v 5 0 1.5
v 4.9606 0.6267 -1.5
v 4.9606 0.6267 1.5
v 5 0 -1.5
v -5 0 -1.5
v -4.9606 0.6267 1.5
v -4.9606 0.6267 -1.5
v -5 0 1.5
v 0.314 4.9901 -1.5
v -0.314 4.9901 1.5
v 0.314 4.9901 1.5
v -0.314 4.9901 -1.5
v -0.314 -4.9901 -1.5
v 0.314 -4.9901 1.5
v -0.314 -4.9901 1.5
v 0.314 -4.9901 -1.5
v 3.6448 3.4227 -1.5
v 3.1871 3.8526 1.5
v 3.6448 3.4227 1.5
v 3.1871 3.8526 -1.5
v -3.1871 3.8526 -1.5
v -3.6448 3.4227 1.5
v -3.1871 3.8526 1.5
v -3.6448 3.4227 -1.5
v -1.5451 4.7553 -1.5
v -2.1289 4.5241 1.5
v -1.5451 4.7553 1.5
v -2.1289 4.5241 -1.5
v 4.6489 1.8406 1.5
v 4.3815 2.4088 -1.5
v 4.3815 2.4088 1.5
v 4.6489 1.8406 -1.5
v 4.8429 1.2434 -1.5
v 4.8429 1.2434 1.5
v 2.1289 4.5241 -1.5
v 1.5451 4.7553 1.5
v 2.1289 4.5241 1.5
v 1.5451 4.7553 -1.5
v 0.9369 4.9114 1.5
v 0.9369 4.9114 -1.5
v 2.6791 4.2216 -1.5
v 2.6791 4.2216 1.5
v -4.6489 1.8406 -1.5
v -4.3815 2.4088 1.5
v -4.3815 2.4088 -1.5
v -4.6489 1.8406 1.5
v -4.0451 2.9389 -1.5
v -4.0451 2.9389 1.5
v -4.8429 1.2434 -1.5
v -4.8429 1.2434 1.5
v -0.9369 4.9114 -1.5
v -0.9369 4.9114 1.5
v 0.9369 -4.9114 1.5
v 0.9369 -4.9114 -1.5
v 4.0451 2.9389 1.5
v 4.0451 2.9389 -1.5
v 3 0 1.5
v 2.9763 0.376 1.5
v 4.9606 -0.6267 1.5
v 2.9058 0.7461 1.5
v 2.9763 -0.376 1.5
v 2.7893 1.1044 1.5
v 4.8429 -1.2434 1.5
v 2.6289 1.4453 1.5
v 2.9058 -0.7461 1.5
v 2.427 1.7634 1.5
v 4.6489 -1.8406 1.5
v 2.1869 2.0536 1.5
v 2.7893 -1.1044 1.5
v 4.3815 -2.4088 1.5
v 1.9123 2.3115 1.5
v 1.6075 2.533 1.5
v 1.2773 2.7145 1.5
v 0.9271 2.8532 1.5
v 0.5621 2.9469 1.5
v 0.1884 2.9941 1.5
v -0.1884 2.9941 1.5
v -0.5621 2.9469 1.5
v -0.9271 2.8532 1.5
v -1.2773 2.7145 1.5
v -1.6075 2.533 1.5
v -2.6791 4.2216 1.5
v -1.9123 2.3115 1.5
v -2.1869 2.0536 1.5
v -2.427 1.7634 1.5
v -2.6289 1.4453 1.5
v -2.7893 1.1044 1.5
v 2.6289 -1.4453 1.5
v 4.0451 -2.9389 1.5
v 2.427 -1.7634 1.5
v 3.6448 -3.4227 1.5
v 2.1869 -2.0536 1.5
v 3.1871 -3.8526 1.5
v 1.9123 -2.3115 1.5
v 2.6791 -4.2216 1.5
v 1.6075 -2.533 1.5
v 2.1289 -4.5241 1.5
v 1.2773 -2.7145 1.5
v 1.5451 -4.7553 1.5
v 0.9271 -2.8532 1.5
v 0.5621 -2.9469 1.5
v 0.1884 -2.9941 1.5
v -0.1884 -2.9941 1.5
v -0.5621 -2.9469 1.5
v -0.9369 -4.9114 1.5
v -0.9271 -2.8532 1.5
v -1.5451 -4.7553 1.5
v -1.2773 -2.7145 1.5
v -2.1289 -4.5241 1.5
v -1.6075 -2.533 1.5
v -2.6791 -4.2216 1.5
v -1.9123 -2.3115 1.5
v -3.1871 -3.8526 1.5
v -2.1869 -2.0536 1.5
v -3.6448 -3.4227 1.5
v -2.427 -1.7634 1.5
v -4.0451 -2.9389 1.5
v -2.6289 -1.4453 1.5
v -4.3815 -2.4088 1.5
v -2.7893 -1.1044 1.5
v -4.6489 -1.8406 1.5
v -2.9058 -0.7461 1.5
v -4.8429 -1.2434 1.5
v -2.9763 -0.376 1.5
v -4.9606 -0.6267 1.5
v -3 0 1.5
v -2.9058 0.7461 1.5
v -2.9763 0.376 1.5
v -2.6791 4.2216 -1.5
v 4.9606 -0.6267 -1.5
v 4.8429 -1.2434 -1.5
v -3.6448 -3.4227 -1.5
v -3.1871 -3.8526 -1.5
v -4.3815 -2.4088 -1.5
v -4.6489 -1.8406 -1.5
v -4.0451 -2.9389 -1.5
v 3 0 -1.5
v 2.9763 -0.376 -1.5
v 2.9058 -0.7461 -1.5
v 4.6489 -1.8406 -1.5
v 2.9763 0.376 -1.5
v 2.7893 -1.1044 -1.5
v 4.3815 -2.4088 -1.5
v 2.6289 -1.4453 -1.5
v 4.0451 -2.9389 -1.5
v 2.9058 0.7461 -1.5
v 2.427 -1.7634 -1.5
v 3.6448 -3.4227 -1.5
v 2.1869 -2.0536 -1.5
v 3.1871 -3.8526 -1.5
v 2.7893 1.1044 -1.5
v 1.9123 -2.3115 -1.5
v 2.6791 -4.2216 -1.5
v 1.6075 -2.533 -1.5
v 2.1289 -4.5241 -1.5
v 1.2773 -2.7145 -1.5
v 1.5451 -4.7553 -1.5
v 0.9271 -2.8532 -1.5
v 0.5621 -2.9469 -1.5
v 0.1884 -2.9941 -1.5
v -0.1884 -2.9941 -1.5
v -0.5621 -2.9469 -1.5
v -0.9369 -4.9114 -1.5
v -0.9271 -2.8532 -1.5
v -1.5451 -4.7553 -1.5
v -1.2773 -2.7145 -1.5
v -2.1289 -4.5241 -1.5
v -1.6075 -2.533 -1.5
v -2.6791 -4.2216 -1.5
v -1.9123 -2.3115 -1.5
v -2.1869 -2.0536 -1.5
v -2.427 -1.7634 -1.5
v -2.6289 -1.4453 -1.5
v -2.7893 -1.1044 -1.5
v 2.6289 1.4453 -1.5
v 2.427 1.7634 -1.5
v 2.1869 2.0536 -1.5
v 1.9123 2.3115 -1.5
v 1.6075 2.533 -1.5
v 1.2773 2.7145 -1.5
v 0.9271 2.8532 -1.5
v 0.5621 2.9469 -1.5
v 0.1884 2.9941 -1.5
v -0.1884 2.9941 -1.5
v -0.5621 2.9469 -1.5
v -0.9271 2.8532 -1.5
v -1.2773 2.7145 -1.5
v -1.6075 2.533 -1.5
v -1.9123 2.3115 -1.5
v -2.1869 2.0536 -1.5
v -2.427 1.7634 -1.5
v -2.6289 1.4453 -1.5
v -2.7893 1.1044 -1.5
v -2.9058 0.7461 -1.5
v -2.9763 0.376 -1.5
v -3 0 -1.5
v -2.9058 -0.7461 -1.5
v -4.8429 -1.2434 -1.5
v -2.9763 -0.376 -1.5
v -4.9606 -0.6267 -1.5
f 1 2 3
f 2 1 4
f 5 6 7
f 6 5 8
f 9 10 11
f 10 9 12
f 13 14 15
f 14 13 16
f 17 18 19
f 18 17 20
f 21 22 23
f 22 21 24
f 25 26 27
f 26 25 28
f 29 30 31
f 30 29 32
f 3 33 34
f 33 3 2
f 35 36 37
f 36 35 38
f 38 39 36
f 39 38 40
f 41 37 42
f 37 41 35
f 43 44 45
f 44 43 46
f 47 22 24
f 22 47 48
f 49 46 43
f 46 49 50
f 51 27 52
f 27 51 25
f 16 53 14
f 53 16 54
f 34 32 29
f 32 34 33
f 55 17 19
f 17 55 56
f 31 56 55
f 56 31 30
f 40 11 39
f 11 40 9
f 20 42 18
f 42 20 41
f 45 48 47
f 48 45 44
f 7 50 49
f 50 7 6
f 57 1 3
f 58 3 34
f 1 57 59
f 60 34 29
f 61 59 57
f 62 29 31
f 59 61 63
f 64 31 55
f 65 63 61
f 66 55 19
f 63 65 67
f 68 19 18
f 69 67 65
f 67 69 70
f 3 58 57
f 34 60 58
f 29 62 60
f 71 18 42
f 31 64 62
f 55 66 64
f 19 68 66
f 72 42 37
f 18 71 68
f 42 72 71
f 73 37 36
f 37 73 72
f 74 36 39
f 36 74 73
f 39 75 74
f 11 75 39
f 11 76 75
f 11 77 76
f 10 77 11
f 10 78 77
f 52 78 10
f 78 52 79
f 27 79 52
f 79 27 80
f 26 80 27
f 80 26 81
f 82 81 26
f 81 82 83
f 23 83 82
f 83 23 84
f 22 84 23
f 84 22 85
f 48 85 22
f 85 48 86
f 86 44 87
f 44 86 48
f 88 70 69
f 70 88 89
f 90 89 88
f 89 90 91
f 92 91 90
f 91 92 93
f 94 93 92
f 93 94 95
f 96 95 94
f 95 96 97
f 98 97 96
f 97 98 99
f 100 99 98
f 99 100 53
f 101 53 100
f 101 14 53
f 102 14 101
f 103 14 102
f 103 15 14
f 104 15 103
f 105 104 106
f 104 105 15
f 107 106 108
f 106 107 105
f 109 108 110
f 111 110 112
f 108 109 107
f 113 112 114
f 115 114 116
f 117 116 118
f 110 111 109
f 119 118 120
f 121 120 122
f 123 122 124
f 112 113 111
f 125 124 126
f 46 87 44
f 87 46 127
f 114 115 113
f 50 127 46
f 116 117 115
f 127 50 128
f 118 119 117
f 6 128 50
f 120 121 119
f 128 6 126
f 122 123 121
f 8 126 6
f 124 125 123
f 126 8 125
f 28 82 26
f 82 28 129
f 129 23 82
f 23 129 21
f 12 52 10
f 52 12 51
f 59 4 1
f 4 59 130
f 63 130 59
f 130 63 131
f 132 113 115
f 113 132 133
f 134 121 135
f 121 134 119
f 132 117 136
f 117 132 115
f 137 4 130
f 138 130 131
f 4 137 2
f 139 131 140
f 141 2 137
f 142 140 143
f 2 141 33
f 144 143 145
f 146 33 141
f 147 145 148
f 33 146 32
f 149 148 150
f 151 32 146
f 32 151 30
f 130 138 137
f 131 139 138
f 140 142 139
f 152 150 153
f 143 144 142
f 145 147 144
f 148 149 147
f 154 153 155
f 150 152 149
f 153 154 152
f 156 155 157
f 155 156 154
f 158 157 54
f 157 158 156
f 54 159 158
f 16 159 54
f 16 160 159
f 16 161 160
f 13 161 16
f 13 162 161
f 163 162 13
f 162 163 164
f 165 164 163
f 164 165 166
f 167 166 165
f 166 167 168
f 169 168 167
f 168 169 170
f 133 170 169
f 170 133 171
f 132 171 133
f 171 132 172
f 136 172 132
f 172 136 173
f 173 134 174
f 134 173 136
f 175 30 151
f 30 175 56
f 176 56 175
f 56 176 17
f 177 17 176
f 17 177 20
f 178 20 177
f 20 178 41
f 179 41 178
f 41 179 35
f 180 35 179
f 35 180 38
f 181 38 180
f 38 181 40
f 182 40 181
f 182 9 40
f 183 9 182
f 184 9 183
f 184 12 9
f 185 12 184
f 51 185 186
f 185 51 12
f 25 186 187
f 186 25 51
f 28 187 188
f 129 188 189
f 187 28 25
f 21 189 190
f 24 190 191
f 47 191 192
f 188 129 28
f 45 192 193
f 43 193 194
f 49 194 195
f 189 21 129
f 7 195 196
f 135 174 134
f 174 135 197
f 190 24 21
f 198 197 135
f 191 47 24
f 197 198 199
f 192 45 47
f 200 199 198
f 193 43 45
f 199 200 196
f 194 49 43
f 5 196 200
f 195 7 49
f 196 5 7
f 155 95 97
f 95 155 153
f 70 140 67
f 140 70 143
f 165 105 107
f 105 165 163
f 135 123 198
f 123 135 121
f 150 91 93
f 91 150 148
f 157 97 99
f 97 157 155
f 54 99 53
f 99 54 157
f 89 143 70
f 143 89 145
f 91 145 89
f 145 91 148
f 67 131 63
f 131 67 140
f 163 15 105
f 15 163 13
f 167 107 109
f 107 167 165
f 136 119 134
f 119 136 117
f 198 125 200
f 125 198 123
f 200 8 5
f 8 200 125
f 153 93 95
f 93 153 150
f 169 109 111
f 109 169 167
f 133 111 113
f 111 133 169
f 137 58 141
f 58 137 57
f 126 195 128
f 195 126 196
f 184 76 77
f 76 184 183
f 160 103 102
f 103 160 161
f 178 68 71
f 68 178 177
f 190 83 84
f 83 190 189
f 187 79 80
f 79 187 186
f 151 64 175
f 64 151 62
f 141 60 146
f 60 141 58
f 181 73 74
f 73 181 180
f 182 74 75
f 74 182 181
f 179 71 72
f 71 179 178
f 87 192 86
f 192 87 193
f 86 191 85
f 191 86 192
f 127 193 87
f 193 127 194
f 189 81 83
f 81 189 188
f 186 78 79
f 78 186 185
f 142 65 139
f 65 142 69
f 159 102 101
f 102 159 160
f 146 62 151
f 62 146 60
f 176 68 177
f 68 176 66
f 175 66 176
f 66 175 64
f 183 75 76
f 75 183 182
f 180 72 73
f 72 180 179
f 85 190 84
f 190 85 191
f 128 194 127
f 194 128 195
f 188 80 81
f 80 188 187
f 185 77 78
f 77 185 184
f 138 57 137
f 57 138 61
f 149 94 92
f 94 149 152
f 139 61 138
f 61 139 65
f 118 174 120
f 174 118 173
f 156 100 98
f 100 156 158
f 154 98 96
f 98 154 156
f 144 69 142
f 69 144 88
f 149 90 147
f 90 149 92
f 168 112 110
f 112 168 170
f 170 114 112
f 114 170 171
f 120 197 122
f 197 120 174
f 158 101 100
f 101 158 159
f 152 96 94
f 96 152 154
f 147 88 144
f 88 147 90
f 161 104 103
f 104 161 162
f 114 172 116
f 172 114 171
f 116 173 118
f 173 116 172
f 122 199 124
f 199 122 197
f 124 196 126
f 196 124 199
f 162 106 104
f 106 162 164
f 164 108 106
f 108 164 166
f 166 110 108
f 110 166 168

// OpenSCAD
$fn = 50;


difference() {
	union() {
		translate(v = [0, 0, -1.5000000000]) {
			cylinder(h = 3, r = 5.0000000000);
		}
	}
	union() {
		translate(v = [0, 0, -100.0000000000]) {
			cylinder(h = 200, r = 3);
		}
	}
}
